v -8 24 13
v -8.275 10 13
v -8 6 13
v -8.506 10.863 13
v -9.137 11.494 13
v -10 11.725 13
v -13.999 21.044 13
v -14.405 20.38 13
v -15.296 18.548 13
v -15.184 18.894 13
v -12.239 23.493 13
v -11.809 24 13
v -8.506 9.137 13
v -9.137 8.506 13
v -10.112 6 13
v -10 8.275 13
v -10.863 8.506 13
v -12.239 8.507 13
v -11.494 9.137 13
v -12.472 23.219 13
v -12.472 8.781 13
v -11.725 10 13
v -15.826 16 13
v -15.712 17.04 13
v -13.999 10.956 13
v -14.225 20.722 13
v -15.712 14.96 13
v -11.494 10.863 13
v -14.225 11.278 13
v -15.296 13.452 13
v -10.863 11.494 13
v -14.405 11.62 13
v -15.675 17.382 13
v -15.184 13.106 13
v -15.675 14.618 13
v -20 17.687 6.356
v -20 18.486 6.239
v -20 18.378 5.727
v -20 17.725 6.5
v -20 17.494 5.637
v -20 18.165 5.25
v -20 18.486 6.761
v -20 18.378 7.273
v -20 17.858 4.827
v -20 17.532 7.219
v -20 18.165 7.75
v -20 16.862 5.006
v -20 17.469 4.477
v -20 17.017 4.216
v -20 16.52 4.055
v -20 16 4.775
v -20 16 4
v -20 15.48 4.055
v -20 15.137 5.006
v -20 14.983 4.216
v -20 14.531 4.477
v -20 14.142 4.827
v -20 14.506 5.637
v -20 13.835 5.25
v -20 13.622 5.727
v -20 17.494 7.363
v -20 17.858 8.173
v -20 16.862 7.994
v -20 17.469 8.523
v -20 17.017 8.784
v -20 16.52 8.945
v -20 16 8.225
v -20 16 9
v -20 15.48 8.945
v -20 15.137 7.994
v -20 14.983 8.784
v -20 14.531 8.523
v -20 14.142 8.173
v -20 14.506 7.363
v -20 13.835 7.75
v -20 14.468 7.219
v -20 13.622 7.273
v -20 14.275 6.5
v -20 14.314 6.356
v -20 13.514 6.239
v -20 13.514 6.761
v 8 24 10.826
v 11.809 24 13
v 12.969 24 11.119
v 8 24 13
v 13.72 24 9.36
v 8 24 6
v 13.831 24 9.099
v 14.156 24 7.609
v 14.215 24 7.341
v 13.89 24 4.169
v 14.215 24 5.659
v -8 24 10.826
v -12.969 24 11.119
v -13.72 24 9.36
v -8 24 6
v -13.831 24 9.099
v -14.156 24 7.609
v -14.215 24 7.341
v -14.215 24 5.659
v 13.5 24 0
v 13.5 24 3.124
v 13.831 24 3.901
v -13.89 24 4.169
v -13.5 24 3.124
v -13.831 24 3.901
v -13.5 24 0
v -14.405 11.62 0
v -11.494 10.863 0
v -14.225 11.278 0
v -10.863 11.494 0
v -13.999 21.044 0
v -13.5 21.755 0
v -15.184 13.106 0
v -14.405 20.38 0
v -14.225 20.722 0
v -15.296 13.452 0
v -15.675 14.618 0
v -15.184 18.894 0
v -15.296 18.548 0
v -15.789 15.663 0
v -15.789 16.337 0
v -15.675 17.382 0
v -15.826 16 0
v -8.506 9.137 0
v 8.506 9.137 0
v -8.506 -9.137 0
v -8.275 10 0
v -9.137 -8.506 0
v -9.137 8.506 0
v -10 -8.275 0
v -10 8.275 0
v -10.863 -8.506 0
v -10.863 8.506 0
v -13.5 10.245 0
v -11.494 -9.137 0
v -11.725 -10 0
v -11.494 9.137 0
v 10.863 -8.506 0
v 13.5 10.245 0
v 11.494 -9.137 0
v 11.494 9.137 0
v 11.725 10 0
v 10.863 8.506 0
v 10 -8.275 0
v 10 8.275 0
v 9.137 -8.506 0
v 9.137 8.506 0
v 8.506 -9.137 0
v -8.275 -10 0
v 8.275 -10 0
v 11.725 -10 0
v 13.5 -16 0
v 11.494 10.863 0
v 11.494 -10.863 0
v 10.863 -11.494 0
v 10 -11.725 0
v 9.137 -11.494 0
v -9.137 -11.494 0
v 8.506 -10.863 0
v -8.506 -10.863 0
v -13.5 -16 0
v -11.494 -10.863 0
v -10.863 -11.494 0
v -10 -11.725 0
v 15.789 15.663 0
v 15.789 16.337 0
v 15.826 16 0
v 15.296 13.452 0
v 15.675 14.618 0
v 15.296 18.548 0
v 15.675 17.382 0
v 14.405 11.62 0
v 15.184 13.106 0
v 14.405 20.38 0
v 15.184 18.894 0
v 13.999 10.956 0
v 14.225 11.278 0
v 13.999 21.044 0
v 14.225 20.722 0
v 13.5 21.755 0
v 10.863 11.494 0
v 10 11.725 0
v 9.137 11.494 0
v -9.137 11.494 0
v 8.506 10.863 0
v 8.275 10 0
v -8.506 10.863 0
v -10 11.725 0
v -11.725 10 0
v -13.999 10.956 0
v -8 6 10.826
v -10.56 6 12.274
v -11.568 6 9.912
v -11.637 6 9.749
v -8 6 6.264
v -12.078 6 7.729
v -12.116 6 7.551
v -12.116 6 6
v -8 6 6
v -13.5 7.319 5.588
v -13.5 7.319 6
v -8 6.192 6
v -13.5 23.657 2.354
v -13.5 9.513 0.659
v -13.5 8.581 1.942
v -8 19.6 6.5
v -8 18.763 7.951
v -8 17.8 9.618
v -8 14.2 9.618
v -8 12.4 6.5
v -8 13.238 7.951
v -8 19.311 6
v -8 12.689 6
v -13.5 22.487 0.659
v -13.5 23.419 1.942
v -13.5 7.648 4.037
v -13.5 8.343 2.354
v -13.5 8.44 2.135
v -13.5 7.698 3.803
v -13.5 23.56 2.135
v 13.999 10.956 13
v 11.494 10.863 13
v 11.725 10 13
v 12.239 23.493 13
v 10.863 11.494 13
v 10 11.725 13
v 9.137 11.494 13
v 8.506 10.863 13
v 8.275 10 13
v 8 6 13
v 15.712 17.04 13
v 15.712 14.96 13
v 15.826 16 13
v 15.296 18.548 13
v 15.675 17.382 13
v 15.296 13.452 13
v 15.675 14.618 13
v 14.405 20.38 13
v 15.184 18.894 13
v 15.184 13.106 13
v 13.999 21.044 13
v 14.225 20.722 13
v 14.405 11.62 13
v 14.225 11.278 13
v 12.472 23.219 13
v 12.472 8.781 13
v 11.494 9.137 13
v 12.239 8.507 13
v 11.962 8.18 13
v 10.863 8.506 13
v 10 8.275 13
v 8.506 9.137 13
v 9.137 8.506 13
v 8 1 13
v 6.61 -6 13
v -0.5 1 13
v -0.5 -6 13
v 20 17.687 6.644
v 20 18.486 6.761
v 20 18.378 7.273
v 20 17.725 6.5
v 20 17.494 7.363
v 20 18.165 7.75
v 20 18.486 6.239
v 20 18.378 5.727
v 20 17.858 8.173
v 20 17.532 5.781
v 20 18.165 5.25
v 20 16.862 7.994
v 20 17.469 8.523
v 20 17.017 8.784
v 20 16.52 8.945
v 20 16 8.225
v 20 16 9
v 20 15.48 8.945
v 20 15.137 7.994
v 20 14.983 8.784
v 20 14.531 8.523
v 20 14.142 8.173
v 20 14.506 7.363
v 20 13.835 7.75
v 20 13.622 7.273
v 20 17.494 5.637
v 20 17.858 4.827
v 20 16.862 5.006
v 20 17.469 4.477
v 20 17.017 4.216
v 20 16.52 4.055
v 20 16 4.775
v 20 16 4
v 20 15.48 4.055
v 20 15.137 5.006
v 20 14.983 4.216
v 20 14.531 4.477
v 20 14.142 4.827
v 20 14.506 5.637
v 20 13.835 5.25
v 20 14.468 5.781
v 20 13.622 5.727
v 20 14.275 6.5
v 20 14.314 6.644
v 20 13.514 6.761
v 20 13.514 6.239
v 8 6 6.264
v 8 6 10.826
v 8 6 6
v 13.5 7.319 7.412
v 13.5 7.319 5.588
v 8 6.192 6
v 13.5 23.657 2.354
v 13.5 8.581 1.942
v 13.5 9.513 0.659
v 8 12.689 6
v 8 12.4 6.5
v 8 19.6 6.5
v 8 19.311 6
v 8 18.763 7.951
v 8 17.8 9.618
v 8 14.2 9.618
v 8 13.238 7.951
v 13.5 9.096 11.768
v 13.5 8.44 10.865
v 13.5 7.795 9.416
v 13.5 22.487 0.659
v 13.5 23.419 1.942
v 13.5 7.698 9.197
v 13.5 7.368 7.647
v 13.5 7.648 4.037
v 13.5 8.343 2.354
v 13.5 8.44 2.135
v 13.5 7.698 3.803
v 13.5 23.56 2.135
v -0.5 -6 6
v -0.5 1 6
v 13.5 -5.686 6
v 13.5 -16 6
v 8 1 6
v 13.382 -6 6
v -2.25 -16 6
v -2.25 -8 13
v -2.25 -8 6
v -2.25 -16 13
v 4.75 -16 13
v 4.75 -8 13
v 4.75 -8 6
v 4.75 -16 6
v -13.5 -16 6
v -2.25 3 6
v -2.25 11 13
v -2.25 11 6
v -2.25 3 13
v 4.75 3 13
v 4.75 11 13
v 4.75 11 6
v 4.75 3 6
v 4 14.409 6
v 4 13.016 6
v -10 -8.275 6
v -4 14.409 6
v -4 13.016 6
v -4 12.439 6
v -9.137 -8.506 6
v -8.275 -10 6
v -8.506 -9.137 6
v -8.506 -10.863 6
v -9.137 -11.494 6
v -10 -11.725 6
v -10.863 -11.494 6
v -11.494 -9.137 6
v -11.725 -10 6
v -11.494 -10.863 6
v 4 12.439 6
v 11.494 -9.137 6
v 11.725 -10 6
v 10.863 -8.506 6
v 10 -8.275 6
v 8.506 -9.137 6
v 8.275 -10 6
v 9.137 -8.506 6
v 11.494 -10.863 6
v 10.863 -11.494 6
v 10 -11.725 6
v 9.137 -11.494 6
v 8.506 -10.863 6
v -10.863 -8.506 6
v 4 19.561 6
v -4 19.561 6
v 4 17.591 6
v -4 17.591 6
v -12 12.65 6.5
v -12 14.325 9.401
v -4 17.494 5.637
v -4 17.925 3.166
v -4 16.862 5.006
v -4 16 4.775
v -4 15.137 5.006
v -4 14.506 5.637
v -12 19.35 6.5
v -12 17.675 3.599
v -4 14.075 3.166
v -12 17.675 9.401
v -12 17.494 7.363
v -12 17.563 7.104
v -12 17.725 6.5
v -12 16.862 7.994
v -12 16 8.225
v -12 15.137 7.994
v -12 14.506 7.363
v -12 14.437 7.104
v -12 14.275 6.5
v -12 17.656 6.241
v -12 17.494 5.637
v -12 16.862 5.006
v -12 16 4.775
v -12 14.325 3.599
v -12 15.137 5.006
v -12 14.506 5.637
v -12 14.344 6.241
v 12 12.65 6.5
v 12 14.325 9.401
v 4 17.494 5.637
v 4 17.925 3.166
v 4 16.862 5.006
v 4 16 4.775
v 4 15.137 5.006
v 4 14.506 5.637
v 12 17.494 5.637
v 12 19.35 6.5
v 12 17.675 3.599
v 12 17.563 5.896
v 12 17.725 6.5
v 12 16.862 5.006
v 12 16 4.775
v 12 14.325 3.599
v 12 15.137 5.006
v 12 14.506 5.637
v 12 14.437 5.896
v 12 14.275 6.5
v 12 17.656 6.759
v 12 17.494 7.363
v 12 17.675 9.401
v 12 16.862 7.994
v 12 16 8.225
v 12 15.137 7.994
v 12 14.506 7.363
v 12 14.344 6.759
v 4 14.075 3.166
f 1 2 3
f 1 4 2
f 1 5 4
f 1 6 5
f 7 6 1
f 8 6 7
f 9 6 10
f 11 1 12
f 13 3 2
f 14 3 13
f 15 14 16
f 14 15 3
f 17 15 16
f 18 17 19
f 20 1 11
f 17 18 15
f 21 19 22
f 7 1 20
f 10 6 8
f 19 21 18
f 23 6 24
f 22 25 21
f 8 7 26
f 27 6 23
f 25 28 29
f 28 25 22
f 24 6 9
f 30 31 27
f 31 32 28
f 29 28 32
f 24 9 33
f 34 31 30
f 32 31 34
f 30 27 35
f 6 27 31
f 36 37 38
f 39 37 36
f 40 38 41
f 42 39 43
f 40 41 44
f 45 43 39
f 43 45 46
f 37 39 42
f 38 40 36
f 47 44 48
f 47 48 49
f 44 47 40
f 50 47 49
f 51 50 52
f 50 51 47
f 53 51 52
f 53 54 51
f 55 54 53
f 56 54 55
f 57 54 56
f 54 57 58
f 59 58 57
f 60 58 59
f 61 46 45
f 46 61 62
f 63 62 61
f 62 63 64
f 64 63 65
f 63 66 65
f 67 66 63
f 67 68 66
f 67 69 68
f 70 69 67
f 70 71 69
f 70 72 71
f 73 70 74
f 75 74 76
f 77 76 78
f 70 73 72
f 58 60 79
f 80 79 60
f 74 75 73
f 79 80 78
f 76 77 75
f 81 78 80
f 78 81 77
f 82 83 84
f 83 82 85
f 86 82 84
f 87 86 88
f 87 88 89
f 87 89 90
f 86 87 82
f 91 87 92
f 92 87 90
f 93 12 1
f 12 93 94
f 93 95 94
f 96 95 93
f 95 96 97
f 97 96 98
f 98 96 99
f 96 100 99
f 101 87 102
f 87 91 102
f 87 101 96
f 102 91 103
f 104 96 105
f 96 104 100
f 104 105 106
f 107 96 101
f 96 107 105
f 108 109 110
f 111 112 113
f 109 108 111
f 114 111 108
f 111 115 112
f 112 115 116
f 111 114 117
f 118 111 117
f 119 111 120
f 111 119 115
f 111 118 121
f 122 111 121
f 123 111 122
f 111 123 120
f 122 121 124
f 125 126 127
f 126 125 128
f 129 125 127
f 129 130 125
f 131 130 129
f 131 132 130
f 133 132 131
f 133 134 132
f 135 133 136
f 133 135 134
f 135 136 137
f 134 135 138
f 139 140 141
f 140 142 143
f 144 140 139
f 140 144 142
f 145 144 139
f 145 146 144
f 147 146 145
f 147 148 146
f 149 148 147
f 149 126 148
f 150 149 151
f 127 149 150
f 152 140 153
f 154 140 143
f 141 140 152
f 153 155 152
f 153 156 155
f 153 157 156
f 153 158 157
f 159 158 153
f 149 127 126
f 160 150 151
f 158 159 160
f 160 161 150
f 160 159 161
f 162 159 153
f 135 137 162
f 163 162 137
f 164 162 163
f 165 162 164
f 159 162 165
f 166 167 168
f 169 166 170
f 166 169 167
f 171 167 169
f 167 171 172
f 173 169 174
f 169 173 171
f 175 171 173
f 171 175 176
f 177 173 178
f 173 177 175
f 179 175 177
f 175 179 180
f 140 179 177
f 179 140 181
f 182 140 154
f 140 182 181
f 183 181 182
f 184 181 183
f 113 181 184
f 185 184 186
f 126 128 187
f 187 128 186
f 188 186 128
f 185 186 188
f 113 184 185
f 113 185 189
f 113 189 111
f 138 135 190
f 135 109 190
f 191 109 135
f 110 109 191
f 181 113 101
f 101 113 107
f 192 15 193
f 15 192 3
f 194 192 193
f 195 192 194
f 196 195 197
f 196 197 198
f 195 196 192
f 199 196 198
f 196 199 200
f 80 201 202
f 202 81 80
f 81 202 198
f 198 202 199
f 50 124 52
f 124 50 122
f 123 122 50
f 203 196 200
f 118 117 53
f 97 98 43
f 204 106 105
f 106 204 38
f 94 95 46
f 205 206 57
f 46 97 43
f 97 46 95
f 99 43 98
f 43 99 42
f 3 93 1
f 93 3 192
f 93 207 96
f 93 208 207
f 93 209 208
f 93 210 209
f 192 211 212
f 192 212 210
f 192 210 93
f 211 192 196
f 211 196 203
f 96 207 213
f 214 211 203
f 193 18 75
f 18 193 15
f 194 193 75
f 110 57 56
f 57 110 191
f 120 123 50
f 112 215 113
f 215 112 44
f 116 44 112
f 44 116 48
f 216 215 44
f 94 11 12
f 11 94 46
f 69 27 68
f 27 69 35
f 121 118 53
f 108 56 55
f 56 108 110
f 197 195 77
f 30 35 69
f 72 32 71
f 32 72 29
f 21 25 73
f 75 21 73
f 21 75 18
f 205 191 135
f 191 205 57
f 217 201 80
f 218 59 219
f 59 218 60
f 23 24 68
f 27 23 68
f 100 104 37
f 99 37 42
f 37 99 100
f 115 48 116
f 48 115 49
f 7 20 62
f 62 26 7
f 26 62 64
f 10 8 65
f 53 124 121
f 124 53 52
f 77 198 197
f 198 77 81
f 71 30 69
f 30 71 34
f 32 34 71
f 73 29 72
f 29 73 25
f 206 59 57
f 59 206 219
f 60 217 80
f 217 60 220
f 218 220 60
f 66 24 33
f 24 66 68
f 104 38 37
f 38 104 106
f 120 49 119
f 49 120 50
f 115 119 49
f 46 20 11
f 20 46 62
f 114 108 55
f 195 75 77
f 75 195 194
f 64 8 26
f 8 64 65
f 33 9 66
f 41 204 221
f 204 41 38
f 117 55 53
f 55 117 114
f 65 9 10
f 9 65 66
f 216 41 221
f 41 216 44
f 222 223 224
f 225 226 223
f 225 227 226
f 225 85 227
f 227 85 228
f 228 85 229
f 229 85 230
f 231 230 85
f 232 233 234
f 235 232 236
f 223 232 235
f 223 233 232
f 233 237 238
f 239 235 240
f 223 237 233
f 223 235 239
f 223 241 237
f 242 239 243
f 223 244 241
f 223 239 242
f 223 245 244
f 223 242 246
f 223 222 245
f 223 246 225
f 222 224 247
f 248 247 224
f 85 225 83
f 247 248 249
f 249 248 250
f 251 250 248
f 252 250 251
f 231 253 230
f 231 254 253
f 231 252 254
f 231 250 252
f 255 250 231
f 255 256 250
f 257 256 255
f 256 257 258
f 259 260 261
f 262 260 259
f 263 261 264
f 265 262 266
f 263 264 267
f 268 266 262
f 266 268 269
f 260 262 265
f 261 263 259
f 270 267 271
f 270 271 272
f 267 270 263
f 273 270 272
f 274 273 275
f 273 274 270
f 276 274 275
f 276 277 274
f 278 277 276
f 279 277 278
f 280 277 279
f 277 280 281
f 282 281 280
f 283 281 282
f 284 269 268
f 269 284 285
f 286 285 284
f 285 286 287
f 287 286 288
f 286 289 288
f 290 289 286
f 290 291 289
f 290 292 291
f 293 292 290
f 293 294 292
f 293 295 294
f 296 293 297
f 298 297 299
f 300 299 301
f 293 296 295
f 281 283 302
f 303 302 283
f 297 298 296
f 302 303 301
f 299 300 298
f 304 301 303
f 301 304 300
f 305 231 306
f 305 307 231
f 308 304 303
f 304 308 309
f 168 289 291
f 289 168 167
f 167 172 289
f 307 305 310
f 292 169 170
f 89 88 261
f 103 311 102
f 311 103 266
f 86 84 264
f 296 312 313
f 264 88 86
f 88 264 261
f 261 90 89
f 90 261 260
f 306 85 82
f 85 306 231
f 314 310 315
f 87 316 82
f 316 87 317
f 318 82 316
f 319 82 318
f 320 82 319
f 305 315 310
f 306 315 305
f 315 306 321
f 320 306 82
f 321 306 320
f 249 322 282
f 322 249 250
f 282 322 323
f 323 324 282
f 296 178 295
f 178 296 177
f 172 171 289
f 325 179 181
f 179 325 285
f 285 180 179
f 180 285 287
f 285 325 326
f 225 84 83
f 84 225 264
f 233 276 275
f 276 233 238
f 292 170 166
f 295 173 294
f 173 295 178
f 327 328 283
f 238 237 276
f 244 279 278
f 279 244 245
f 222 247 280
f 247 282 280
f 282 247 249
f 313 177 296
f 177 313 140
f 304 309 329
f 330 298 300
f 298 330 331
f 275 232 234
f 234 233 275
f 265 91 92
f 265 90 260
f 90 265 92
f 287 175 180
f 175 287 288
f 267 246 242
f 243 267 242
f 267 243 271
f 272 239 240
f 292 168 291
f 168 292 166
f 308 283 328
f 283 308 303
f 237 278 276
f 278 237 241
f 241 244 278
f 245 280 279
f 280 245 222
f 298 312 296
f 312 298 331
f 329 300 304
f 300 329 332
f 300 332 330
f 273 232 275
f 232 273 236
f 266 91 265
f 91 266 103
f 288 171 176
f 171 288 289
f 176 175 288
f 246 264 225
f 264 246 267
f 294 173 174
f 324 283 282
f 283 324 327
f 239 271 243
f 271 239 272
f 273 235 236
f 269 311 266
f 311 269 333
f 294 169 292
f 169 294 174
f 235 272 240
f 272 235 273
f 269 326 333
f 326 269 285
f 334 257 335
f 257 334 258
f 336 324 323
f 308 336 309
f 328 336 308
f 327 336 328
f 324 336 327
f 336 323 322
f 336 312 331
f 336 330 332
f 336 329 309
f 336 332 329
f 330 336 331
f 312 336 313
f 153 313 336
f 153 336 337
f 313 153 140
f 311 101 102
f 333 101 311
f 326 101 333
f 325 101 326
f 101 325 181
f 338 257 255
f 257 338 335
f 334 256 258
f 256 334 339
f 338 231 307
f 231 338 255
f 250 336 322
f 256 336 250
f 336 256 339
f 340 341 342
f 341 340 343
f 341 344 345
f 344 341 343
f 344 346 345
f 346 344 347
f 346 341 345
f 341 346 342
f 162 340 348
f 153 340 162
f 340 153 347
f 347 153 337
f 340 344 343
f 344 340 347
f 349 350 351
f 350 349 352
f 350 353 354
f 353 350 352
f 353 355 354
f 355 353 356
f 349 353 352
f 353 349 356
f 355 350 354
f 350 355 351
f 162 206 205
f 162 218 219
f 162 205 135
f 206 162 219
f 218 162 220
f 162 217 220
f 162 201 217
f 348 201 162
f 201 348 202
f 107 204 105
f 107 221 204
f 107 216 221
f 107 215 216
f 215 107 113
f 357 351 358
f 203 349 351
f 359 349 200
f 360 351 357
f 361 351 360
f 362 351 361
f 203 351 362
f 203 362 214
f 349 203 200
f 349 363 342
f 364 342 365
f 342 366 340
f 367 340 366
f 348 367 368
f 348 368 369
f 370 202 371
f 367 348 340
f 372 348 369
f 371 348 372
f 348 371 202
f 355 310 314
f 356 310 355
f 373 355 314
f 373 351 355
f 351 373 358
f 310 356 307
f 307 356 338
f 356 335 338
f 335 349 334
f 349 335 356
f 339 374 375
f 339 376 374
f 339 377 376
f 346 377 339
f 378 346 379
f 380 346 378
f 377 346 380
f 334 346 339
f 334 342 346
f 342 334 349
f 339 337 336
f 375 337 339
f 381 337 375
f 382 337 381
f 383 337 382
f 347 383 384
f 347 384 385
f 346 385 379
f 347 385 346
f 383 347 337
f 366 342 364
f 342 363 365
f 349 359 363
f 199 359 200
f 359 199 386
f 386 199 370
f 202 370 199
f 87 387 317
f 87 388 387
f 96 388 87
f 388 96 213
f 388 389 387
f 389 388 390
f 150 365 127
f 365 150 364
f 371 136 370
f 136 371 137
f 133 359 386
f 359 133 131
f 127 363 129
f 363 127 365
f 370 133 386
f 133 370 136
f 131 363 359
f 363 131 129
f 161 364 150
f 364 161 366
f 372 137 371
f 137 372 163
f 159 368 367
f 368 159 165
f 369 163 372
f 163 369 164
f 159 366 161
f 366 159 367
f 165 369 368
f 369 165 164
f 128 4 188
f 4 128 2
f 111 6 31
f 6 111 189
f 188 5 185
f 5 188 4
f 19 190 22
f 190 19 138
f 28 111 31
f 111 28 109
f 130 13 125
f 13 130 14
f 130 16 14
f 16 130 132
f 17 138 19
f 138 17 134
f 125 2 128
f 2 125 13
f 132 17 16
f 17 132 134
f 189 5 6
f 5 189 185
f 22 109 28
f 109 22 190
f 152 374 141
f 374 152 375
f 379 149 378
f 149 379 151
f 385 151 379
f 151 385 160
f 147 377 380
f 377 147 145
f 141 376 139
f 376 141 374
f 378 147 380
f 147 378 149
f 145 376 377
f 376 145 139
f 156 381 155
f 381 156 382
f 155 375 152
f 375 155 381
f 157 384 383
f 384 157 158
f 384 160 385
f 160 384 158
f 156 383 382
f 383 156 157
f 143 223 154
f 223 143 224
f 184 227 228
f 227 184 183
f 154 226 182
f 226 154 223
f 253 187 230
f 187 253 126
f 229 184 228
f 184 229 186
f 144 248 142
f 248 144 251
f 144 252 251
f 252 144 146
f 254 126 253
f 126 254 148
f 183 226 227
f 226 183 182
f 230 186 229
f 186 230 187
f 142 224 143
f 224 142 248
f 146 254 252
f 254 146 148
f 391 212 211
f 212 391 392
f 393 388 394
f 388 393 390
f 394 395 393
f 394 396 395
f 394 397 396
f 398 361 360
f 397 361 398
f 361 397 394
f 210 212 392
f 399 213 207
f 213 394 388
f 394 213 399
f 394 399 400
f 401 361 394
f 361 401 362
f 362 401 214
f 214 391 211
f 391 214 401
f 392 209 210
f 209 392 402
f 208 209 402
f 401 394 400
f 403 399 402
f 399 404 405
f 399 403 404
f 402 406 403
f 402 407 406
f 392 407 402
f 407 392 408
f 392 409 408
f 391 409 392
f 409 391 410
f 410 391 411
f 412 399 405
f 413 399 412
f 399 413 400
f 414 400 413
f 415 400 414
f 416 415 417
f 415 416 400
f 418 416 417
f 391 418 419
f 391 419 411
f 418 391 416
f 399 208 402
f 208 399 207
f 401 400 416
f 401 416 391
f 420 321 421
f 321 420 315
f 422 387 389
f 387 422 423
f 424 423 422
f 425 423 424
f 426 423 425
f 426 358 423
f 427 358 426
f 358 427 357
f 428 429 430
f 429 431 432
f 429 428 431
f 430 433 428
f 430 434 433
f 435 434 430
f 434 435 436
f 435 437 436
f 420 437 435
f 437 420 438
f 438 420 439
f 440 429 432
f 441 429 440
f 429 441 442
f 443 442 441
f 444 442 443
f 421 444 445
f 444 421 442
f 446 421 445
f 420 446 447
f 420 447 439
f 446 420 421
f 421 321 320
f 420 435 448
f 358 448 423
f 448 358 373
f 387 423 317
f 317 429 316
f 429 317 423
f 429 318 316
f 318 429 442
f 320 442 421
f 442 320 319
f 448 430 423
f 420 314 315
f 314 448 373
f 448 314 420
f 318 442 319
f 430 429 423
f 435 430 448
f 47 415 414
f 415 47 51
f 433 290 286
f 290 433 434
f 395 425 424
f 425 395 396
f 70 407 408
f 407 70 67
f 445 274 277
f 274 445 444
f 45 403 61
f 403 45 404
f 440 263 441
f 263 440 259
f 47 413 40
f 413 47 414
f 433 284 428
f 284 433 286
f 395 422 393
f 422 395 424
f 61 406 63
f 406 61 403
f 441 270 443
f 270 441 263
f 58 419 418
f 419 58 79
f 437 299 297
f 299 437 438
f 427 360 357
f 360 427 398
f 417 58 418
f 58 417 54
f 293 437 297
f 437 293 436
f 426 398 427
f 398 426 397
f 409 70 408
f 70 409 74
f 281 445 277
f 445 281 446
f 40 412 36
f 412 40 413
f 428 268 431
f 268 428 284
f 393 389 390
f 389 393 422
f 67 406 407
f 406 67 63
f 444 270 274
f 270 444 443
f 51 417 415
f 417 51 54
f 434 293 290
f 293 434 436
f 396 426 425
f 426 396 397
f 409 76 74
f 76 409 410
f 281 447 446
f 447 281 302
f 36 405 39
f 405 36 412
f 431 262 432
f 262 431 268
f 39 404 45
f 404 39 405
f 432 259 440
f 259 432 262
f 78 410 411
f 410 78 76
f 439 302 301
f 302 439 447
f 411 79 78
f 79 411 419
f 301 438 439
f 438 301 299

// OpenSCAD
// file: configuration.scad
/**
 * @author Johann Rocholl <johann@rocholl.net>
 * @license GPL-3.0
 */

// Increase this if your slicer or printer make holes too tight.
extra_radius = 0.1;

// OD = outside diameter, corner to corner.
m3_nut_od = 6.1;
m3_nut_radius = m3_nut_od/2 + 0.2 + extra_radius;
m3_washer_radius = 3.5 + extra_radius;

// Major diameter of metric 3mm thread.
m3_major = 2.85;
m3_radius = m3_major/2 + extra_radius;
m3_wide_radius = m3_major/2 + extra_radius + 0.2;

// NEMA17 stepper motors.
motor_shaft_diameter = 5;
motor_shaft_radius = motor_shaft_diameter/2 + extra_radius;

// Frame brackets. M3x8mm screws work best with 3.6 mm brackets.
thickness = 3.6;

// OpenBeam or Misumi. Currently only 15x15 mm, but there is a plan
// to make models more parametric and allow 20x20 mm in the future.
extrusion = 15;

// Placement for the NEMA17 stepper motors.
motor_offset = 44;
motor_length = 47;
// main file
/**
 * @author Johann Rocholl <johann@rocholl.net>
 * @license GPL-3.0
 */

include <configuration.scad>;

separation = 40;
thickness = 6;

horn_thickness = 13;
horn_x = 8;

belt_width = 5;
belt_x = 5.6;
belt_z = 7;

module carriage() {
  // Timing belt (up and down).
  translate([-belt_x, 0, belt_z + belt_width/2]) %
    cube([1.7, 100, belt_width], center=true);
  translate([belt_x, 0, belt_z + belt_width/2]) %
    cube([1.7, 100, belt_width], center=true);
  difference() {
    union() {
      // Main body.
      translate([0, 4, thickness/2])
        cube([27, 40, thickness], center=true);
      // Ball joint mount horns.
      for (x = [-1, 1]) {
        scale([x, 1, 1]) intersection() {
          translate([0, 15, horn_thickness/2])
            cube([separation, 18, horn_thickness], center=true);
          translate([horn_x, 16, horn_thickness/2]) rotate([0, 90, 0])
            cylinder(r1=14, r2=2.5, h=separation/2-horn_x);
        }
      }
      // Belt clamps.
      difference() {
        union() {
          translate([6.5, -2.5, horn_thickness/2+1])
            cube([14, 7, horn_thickness-2], center=true);
          translate([10.75, 2.5, horn_thickness/2+1])
            cube([5.5, 16, horn_thickness-2], center=true);
        }
        // Avoid touching diagonal push rods (carbon tube).
        translate([20, -10, 12.5]) rotate([35, 35, 30])
          cube([40, 40, 20], center=true);
      }
      for (y = [-12, 7]) {
        translate([1.25, y, horn_thickness/2+1])
          cube([7, 8, horn_thickness-2], center=true);
      }
    }
    // Screws for linear slider.
    for (x = [-10, 10]) {
      for (y = [-10, 10]) {
        translate([x, y, thickness]) #
          cylinder(r=m3_wide_radius, h=30, center=true, $fn=12);
      }
    }
    // Screws for ball joints.
    translate([0, 16, horn_thickness/2]) rotate([0, 90, 0]) #
      cylinder(r=m3_wide_radius, h=60, center=true, $fn=12);
    // Lock nuts for ball joints.
    for (x = [-1, 1]) {
      scale([x, 1, 1]) intersection() {
        translate([horn_x, 16, horn_thickness/2]) rotate([90, 0, -90])
          cylinder(r1=m3_nut_radius, r2=m3_nut_radius+0.5, h=8,
                   center=true, $fn=6);
      }
    }
  }
}

carriage();
